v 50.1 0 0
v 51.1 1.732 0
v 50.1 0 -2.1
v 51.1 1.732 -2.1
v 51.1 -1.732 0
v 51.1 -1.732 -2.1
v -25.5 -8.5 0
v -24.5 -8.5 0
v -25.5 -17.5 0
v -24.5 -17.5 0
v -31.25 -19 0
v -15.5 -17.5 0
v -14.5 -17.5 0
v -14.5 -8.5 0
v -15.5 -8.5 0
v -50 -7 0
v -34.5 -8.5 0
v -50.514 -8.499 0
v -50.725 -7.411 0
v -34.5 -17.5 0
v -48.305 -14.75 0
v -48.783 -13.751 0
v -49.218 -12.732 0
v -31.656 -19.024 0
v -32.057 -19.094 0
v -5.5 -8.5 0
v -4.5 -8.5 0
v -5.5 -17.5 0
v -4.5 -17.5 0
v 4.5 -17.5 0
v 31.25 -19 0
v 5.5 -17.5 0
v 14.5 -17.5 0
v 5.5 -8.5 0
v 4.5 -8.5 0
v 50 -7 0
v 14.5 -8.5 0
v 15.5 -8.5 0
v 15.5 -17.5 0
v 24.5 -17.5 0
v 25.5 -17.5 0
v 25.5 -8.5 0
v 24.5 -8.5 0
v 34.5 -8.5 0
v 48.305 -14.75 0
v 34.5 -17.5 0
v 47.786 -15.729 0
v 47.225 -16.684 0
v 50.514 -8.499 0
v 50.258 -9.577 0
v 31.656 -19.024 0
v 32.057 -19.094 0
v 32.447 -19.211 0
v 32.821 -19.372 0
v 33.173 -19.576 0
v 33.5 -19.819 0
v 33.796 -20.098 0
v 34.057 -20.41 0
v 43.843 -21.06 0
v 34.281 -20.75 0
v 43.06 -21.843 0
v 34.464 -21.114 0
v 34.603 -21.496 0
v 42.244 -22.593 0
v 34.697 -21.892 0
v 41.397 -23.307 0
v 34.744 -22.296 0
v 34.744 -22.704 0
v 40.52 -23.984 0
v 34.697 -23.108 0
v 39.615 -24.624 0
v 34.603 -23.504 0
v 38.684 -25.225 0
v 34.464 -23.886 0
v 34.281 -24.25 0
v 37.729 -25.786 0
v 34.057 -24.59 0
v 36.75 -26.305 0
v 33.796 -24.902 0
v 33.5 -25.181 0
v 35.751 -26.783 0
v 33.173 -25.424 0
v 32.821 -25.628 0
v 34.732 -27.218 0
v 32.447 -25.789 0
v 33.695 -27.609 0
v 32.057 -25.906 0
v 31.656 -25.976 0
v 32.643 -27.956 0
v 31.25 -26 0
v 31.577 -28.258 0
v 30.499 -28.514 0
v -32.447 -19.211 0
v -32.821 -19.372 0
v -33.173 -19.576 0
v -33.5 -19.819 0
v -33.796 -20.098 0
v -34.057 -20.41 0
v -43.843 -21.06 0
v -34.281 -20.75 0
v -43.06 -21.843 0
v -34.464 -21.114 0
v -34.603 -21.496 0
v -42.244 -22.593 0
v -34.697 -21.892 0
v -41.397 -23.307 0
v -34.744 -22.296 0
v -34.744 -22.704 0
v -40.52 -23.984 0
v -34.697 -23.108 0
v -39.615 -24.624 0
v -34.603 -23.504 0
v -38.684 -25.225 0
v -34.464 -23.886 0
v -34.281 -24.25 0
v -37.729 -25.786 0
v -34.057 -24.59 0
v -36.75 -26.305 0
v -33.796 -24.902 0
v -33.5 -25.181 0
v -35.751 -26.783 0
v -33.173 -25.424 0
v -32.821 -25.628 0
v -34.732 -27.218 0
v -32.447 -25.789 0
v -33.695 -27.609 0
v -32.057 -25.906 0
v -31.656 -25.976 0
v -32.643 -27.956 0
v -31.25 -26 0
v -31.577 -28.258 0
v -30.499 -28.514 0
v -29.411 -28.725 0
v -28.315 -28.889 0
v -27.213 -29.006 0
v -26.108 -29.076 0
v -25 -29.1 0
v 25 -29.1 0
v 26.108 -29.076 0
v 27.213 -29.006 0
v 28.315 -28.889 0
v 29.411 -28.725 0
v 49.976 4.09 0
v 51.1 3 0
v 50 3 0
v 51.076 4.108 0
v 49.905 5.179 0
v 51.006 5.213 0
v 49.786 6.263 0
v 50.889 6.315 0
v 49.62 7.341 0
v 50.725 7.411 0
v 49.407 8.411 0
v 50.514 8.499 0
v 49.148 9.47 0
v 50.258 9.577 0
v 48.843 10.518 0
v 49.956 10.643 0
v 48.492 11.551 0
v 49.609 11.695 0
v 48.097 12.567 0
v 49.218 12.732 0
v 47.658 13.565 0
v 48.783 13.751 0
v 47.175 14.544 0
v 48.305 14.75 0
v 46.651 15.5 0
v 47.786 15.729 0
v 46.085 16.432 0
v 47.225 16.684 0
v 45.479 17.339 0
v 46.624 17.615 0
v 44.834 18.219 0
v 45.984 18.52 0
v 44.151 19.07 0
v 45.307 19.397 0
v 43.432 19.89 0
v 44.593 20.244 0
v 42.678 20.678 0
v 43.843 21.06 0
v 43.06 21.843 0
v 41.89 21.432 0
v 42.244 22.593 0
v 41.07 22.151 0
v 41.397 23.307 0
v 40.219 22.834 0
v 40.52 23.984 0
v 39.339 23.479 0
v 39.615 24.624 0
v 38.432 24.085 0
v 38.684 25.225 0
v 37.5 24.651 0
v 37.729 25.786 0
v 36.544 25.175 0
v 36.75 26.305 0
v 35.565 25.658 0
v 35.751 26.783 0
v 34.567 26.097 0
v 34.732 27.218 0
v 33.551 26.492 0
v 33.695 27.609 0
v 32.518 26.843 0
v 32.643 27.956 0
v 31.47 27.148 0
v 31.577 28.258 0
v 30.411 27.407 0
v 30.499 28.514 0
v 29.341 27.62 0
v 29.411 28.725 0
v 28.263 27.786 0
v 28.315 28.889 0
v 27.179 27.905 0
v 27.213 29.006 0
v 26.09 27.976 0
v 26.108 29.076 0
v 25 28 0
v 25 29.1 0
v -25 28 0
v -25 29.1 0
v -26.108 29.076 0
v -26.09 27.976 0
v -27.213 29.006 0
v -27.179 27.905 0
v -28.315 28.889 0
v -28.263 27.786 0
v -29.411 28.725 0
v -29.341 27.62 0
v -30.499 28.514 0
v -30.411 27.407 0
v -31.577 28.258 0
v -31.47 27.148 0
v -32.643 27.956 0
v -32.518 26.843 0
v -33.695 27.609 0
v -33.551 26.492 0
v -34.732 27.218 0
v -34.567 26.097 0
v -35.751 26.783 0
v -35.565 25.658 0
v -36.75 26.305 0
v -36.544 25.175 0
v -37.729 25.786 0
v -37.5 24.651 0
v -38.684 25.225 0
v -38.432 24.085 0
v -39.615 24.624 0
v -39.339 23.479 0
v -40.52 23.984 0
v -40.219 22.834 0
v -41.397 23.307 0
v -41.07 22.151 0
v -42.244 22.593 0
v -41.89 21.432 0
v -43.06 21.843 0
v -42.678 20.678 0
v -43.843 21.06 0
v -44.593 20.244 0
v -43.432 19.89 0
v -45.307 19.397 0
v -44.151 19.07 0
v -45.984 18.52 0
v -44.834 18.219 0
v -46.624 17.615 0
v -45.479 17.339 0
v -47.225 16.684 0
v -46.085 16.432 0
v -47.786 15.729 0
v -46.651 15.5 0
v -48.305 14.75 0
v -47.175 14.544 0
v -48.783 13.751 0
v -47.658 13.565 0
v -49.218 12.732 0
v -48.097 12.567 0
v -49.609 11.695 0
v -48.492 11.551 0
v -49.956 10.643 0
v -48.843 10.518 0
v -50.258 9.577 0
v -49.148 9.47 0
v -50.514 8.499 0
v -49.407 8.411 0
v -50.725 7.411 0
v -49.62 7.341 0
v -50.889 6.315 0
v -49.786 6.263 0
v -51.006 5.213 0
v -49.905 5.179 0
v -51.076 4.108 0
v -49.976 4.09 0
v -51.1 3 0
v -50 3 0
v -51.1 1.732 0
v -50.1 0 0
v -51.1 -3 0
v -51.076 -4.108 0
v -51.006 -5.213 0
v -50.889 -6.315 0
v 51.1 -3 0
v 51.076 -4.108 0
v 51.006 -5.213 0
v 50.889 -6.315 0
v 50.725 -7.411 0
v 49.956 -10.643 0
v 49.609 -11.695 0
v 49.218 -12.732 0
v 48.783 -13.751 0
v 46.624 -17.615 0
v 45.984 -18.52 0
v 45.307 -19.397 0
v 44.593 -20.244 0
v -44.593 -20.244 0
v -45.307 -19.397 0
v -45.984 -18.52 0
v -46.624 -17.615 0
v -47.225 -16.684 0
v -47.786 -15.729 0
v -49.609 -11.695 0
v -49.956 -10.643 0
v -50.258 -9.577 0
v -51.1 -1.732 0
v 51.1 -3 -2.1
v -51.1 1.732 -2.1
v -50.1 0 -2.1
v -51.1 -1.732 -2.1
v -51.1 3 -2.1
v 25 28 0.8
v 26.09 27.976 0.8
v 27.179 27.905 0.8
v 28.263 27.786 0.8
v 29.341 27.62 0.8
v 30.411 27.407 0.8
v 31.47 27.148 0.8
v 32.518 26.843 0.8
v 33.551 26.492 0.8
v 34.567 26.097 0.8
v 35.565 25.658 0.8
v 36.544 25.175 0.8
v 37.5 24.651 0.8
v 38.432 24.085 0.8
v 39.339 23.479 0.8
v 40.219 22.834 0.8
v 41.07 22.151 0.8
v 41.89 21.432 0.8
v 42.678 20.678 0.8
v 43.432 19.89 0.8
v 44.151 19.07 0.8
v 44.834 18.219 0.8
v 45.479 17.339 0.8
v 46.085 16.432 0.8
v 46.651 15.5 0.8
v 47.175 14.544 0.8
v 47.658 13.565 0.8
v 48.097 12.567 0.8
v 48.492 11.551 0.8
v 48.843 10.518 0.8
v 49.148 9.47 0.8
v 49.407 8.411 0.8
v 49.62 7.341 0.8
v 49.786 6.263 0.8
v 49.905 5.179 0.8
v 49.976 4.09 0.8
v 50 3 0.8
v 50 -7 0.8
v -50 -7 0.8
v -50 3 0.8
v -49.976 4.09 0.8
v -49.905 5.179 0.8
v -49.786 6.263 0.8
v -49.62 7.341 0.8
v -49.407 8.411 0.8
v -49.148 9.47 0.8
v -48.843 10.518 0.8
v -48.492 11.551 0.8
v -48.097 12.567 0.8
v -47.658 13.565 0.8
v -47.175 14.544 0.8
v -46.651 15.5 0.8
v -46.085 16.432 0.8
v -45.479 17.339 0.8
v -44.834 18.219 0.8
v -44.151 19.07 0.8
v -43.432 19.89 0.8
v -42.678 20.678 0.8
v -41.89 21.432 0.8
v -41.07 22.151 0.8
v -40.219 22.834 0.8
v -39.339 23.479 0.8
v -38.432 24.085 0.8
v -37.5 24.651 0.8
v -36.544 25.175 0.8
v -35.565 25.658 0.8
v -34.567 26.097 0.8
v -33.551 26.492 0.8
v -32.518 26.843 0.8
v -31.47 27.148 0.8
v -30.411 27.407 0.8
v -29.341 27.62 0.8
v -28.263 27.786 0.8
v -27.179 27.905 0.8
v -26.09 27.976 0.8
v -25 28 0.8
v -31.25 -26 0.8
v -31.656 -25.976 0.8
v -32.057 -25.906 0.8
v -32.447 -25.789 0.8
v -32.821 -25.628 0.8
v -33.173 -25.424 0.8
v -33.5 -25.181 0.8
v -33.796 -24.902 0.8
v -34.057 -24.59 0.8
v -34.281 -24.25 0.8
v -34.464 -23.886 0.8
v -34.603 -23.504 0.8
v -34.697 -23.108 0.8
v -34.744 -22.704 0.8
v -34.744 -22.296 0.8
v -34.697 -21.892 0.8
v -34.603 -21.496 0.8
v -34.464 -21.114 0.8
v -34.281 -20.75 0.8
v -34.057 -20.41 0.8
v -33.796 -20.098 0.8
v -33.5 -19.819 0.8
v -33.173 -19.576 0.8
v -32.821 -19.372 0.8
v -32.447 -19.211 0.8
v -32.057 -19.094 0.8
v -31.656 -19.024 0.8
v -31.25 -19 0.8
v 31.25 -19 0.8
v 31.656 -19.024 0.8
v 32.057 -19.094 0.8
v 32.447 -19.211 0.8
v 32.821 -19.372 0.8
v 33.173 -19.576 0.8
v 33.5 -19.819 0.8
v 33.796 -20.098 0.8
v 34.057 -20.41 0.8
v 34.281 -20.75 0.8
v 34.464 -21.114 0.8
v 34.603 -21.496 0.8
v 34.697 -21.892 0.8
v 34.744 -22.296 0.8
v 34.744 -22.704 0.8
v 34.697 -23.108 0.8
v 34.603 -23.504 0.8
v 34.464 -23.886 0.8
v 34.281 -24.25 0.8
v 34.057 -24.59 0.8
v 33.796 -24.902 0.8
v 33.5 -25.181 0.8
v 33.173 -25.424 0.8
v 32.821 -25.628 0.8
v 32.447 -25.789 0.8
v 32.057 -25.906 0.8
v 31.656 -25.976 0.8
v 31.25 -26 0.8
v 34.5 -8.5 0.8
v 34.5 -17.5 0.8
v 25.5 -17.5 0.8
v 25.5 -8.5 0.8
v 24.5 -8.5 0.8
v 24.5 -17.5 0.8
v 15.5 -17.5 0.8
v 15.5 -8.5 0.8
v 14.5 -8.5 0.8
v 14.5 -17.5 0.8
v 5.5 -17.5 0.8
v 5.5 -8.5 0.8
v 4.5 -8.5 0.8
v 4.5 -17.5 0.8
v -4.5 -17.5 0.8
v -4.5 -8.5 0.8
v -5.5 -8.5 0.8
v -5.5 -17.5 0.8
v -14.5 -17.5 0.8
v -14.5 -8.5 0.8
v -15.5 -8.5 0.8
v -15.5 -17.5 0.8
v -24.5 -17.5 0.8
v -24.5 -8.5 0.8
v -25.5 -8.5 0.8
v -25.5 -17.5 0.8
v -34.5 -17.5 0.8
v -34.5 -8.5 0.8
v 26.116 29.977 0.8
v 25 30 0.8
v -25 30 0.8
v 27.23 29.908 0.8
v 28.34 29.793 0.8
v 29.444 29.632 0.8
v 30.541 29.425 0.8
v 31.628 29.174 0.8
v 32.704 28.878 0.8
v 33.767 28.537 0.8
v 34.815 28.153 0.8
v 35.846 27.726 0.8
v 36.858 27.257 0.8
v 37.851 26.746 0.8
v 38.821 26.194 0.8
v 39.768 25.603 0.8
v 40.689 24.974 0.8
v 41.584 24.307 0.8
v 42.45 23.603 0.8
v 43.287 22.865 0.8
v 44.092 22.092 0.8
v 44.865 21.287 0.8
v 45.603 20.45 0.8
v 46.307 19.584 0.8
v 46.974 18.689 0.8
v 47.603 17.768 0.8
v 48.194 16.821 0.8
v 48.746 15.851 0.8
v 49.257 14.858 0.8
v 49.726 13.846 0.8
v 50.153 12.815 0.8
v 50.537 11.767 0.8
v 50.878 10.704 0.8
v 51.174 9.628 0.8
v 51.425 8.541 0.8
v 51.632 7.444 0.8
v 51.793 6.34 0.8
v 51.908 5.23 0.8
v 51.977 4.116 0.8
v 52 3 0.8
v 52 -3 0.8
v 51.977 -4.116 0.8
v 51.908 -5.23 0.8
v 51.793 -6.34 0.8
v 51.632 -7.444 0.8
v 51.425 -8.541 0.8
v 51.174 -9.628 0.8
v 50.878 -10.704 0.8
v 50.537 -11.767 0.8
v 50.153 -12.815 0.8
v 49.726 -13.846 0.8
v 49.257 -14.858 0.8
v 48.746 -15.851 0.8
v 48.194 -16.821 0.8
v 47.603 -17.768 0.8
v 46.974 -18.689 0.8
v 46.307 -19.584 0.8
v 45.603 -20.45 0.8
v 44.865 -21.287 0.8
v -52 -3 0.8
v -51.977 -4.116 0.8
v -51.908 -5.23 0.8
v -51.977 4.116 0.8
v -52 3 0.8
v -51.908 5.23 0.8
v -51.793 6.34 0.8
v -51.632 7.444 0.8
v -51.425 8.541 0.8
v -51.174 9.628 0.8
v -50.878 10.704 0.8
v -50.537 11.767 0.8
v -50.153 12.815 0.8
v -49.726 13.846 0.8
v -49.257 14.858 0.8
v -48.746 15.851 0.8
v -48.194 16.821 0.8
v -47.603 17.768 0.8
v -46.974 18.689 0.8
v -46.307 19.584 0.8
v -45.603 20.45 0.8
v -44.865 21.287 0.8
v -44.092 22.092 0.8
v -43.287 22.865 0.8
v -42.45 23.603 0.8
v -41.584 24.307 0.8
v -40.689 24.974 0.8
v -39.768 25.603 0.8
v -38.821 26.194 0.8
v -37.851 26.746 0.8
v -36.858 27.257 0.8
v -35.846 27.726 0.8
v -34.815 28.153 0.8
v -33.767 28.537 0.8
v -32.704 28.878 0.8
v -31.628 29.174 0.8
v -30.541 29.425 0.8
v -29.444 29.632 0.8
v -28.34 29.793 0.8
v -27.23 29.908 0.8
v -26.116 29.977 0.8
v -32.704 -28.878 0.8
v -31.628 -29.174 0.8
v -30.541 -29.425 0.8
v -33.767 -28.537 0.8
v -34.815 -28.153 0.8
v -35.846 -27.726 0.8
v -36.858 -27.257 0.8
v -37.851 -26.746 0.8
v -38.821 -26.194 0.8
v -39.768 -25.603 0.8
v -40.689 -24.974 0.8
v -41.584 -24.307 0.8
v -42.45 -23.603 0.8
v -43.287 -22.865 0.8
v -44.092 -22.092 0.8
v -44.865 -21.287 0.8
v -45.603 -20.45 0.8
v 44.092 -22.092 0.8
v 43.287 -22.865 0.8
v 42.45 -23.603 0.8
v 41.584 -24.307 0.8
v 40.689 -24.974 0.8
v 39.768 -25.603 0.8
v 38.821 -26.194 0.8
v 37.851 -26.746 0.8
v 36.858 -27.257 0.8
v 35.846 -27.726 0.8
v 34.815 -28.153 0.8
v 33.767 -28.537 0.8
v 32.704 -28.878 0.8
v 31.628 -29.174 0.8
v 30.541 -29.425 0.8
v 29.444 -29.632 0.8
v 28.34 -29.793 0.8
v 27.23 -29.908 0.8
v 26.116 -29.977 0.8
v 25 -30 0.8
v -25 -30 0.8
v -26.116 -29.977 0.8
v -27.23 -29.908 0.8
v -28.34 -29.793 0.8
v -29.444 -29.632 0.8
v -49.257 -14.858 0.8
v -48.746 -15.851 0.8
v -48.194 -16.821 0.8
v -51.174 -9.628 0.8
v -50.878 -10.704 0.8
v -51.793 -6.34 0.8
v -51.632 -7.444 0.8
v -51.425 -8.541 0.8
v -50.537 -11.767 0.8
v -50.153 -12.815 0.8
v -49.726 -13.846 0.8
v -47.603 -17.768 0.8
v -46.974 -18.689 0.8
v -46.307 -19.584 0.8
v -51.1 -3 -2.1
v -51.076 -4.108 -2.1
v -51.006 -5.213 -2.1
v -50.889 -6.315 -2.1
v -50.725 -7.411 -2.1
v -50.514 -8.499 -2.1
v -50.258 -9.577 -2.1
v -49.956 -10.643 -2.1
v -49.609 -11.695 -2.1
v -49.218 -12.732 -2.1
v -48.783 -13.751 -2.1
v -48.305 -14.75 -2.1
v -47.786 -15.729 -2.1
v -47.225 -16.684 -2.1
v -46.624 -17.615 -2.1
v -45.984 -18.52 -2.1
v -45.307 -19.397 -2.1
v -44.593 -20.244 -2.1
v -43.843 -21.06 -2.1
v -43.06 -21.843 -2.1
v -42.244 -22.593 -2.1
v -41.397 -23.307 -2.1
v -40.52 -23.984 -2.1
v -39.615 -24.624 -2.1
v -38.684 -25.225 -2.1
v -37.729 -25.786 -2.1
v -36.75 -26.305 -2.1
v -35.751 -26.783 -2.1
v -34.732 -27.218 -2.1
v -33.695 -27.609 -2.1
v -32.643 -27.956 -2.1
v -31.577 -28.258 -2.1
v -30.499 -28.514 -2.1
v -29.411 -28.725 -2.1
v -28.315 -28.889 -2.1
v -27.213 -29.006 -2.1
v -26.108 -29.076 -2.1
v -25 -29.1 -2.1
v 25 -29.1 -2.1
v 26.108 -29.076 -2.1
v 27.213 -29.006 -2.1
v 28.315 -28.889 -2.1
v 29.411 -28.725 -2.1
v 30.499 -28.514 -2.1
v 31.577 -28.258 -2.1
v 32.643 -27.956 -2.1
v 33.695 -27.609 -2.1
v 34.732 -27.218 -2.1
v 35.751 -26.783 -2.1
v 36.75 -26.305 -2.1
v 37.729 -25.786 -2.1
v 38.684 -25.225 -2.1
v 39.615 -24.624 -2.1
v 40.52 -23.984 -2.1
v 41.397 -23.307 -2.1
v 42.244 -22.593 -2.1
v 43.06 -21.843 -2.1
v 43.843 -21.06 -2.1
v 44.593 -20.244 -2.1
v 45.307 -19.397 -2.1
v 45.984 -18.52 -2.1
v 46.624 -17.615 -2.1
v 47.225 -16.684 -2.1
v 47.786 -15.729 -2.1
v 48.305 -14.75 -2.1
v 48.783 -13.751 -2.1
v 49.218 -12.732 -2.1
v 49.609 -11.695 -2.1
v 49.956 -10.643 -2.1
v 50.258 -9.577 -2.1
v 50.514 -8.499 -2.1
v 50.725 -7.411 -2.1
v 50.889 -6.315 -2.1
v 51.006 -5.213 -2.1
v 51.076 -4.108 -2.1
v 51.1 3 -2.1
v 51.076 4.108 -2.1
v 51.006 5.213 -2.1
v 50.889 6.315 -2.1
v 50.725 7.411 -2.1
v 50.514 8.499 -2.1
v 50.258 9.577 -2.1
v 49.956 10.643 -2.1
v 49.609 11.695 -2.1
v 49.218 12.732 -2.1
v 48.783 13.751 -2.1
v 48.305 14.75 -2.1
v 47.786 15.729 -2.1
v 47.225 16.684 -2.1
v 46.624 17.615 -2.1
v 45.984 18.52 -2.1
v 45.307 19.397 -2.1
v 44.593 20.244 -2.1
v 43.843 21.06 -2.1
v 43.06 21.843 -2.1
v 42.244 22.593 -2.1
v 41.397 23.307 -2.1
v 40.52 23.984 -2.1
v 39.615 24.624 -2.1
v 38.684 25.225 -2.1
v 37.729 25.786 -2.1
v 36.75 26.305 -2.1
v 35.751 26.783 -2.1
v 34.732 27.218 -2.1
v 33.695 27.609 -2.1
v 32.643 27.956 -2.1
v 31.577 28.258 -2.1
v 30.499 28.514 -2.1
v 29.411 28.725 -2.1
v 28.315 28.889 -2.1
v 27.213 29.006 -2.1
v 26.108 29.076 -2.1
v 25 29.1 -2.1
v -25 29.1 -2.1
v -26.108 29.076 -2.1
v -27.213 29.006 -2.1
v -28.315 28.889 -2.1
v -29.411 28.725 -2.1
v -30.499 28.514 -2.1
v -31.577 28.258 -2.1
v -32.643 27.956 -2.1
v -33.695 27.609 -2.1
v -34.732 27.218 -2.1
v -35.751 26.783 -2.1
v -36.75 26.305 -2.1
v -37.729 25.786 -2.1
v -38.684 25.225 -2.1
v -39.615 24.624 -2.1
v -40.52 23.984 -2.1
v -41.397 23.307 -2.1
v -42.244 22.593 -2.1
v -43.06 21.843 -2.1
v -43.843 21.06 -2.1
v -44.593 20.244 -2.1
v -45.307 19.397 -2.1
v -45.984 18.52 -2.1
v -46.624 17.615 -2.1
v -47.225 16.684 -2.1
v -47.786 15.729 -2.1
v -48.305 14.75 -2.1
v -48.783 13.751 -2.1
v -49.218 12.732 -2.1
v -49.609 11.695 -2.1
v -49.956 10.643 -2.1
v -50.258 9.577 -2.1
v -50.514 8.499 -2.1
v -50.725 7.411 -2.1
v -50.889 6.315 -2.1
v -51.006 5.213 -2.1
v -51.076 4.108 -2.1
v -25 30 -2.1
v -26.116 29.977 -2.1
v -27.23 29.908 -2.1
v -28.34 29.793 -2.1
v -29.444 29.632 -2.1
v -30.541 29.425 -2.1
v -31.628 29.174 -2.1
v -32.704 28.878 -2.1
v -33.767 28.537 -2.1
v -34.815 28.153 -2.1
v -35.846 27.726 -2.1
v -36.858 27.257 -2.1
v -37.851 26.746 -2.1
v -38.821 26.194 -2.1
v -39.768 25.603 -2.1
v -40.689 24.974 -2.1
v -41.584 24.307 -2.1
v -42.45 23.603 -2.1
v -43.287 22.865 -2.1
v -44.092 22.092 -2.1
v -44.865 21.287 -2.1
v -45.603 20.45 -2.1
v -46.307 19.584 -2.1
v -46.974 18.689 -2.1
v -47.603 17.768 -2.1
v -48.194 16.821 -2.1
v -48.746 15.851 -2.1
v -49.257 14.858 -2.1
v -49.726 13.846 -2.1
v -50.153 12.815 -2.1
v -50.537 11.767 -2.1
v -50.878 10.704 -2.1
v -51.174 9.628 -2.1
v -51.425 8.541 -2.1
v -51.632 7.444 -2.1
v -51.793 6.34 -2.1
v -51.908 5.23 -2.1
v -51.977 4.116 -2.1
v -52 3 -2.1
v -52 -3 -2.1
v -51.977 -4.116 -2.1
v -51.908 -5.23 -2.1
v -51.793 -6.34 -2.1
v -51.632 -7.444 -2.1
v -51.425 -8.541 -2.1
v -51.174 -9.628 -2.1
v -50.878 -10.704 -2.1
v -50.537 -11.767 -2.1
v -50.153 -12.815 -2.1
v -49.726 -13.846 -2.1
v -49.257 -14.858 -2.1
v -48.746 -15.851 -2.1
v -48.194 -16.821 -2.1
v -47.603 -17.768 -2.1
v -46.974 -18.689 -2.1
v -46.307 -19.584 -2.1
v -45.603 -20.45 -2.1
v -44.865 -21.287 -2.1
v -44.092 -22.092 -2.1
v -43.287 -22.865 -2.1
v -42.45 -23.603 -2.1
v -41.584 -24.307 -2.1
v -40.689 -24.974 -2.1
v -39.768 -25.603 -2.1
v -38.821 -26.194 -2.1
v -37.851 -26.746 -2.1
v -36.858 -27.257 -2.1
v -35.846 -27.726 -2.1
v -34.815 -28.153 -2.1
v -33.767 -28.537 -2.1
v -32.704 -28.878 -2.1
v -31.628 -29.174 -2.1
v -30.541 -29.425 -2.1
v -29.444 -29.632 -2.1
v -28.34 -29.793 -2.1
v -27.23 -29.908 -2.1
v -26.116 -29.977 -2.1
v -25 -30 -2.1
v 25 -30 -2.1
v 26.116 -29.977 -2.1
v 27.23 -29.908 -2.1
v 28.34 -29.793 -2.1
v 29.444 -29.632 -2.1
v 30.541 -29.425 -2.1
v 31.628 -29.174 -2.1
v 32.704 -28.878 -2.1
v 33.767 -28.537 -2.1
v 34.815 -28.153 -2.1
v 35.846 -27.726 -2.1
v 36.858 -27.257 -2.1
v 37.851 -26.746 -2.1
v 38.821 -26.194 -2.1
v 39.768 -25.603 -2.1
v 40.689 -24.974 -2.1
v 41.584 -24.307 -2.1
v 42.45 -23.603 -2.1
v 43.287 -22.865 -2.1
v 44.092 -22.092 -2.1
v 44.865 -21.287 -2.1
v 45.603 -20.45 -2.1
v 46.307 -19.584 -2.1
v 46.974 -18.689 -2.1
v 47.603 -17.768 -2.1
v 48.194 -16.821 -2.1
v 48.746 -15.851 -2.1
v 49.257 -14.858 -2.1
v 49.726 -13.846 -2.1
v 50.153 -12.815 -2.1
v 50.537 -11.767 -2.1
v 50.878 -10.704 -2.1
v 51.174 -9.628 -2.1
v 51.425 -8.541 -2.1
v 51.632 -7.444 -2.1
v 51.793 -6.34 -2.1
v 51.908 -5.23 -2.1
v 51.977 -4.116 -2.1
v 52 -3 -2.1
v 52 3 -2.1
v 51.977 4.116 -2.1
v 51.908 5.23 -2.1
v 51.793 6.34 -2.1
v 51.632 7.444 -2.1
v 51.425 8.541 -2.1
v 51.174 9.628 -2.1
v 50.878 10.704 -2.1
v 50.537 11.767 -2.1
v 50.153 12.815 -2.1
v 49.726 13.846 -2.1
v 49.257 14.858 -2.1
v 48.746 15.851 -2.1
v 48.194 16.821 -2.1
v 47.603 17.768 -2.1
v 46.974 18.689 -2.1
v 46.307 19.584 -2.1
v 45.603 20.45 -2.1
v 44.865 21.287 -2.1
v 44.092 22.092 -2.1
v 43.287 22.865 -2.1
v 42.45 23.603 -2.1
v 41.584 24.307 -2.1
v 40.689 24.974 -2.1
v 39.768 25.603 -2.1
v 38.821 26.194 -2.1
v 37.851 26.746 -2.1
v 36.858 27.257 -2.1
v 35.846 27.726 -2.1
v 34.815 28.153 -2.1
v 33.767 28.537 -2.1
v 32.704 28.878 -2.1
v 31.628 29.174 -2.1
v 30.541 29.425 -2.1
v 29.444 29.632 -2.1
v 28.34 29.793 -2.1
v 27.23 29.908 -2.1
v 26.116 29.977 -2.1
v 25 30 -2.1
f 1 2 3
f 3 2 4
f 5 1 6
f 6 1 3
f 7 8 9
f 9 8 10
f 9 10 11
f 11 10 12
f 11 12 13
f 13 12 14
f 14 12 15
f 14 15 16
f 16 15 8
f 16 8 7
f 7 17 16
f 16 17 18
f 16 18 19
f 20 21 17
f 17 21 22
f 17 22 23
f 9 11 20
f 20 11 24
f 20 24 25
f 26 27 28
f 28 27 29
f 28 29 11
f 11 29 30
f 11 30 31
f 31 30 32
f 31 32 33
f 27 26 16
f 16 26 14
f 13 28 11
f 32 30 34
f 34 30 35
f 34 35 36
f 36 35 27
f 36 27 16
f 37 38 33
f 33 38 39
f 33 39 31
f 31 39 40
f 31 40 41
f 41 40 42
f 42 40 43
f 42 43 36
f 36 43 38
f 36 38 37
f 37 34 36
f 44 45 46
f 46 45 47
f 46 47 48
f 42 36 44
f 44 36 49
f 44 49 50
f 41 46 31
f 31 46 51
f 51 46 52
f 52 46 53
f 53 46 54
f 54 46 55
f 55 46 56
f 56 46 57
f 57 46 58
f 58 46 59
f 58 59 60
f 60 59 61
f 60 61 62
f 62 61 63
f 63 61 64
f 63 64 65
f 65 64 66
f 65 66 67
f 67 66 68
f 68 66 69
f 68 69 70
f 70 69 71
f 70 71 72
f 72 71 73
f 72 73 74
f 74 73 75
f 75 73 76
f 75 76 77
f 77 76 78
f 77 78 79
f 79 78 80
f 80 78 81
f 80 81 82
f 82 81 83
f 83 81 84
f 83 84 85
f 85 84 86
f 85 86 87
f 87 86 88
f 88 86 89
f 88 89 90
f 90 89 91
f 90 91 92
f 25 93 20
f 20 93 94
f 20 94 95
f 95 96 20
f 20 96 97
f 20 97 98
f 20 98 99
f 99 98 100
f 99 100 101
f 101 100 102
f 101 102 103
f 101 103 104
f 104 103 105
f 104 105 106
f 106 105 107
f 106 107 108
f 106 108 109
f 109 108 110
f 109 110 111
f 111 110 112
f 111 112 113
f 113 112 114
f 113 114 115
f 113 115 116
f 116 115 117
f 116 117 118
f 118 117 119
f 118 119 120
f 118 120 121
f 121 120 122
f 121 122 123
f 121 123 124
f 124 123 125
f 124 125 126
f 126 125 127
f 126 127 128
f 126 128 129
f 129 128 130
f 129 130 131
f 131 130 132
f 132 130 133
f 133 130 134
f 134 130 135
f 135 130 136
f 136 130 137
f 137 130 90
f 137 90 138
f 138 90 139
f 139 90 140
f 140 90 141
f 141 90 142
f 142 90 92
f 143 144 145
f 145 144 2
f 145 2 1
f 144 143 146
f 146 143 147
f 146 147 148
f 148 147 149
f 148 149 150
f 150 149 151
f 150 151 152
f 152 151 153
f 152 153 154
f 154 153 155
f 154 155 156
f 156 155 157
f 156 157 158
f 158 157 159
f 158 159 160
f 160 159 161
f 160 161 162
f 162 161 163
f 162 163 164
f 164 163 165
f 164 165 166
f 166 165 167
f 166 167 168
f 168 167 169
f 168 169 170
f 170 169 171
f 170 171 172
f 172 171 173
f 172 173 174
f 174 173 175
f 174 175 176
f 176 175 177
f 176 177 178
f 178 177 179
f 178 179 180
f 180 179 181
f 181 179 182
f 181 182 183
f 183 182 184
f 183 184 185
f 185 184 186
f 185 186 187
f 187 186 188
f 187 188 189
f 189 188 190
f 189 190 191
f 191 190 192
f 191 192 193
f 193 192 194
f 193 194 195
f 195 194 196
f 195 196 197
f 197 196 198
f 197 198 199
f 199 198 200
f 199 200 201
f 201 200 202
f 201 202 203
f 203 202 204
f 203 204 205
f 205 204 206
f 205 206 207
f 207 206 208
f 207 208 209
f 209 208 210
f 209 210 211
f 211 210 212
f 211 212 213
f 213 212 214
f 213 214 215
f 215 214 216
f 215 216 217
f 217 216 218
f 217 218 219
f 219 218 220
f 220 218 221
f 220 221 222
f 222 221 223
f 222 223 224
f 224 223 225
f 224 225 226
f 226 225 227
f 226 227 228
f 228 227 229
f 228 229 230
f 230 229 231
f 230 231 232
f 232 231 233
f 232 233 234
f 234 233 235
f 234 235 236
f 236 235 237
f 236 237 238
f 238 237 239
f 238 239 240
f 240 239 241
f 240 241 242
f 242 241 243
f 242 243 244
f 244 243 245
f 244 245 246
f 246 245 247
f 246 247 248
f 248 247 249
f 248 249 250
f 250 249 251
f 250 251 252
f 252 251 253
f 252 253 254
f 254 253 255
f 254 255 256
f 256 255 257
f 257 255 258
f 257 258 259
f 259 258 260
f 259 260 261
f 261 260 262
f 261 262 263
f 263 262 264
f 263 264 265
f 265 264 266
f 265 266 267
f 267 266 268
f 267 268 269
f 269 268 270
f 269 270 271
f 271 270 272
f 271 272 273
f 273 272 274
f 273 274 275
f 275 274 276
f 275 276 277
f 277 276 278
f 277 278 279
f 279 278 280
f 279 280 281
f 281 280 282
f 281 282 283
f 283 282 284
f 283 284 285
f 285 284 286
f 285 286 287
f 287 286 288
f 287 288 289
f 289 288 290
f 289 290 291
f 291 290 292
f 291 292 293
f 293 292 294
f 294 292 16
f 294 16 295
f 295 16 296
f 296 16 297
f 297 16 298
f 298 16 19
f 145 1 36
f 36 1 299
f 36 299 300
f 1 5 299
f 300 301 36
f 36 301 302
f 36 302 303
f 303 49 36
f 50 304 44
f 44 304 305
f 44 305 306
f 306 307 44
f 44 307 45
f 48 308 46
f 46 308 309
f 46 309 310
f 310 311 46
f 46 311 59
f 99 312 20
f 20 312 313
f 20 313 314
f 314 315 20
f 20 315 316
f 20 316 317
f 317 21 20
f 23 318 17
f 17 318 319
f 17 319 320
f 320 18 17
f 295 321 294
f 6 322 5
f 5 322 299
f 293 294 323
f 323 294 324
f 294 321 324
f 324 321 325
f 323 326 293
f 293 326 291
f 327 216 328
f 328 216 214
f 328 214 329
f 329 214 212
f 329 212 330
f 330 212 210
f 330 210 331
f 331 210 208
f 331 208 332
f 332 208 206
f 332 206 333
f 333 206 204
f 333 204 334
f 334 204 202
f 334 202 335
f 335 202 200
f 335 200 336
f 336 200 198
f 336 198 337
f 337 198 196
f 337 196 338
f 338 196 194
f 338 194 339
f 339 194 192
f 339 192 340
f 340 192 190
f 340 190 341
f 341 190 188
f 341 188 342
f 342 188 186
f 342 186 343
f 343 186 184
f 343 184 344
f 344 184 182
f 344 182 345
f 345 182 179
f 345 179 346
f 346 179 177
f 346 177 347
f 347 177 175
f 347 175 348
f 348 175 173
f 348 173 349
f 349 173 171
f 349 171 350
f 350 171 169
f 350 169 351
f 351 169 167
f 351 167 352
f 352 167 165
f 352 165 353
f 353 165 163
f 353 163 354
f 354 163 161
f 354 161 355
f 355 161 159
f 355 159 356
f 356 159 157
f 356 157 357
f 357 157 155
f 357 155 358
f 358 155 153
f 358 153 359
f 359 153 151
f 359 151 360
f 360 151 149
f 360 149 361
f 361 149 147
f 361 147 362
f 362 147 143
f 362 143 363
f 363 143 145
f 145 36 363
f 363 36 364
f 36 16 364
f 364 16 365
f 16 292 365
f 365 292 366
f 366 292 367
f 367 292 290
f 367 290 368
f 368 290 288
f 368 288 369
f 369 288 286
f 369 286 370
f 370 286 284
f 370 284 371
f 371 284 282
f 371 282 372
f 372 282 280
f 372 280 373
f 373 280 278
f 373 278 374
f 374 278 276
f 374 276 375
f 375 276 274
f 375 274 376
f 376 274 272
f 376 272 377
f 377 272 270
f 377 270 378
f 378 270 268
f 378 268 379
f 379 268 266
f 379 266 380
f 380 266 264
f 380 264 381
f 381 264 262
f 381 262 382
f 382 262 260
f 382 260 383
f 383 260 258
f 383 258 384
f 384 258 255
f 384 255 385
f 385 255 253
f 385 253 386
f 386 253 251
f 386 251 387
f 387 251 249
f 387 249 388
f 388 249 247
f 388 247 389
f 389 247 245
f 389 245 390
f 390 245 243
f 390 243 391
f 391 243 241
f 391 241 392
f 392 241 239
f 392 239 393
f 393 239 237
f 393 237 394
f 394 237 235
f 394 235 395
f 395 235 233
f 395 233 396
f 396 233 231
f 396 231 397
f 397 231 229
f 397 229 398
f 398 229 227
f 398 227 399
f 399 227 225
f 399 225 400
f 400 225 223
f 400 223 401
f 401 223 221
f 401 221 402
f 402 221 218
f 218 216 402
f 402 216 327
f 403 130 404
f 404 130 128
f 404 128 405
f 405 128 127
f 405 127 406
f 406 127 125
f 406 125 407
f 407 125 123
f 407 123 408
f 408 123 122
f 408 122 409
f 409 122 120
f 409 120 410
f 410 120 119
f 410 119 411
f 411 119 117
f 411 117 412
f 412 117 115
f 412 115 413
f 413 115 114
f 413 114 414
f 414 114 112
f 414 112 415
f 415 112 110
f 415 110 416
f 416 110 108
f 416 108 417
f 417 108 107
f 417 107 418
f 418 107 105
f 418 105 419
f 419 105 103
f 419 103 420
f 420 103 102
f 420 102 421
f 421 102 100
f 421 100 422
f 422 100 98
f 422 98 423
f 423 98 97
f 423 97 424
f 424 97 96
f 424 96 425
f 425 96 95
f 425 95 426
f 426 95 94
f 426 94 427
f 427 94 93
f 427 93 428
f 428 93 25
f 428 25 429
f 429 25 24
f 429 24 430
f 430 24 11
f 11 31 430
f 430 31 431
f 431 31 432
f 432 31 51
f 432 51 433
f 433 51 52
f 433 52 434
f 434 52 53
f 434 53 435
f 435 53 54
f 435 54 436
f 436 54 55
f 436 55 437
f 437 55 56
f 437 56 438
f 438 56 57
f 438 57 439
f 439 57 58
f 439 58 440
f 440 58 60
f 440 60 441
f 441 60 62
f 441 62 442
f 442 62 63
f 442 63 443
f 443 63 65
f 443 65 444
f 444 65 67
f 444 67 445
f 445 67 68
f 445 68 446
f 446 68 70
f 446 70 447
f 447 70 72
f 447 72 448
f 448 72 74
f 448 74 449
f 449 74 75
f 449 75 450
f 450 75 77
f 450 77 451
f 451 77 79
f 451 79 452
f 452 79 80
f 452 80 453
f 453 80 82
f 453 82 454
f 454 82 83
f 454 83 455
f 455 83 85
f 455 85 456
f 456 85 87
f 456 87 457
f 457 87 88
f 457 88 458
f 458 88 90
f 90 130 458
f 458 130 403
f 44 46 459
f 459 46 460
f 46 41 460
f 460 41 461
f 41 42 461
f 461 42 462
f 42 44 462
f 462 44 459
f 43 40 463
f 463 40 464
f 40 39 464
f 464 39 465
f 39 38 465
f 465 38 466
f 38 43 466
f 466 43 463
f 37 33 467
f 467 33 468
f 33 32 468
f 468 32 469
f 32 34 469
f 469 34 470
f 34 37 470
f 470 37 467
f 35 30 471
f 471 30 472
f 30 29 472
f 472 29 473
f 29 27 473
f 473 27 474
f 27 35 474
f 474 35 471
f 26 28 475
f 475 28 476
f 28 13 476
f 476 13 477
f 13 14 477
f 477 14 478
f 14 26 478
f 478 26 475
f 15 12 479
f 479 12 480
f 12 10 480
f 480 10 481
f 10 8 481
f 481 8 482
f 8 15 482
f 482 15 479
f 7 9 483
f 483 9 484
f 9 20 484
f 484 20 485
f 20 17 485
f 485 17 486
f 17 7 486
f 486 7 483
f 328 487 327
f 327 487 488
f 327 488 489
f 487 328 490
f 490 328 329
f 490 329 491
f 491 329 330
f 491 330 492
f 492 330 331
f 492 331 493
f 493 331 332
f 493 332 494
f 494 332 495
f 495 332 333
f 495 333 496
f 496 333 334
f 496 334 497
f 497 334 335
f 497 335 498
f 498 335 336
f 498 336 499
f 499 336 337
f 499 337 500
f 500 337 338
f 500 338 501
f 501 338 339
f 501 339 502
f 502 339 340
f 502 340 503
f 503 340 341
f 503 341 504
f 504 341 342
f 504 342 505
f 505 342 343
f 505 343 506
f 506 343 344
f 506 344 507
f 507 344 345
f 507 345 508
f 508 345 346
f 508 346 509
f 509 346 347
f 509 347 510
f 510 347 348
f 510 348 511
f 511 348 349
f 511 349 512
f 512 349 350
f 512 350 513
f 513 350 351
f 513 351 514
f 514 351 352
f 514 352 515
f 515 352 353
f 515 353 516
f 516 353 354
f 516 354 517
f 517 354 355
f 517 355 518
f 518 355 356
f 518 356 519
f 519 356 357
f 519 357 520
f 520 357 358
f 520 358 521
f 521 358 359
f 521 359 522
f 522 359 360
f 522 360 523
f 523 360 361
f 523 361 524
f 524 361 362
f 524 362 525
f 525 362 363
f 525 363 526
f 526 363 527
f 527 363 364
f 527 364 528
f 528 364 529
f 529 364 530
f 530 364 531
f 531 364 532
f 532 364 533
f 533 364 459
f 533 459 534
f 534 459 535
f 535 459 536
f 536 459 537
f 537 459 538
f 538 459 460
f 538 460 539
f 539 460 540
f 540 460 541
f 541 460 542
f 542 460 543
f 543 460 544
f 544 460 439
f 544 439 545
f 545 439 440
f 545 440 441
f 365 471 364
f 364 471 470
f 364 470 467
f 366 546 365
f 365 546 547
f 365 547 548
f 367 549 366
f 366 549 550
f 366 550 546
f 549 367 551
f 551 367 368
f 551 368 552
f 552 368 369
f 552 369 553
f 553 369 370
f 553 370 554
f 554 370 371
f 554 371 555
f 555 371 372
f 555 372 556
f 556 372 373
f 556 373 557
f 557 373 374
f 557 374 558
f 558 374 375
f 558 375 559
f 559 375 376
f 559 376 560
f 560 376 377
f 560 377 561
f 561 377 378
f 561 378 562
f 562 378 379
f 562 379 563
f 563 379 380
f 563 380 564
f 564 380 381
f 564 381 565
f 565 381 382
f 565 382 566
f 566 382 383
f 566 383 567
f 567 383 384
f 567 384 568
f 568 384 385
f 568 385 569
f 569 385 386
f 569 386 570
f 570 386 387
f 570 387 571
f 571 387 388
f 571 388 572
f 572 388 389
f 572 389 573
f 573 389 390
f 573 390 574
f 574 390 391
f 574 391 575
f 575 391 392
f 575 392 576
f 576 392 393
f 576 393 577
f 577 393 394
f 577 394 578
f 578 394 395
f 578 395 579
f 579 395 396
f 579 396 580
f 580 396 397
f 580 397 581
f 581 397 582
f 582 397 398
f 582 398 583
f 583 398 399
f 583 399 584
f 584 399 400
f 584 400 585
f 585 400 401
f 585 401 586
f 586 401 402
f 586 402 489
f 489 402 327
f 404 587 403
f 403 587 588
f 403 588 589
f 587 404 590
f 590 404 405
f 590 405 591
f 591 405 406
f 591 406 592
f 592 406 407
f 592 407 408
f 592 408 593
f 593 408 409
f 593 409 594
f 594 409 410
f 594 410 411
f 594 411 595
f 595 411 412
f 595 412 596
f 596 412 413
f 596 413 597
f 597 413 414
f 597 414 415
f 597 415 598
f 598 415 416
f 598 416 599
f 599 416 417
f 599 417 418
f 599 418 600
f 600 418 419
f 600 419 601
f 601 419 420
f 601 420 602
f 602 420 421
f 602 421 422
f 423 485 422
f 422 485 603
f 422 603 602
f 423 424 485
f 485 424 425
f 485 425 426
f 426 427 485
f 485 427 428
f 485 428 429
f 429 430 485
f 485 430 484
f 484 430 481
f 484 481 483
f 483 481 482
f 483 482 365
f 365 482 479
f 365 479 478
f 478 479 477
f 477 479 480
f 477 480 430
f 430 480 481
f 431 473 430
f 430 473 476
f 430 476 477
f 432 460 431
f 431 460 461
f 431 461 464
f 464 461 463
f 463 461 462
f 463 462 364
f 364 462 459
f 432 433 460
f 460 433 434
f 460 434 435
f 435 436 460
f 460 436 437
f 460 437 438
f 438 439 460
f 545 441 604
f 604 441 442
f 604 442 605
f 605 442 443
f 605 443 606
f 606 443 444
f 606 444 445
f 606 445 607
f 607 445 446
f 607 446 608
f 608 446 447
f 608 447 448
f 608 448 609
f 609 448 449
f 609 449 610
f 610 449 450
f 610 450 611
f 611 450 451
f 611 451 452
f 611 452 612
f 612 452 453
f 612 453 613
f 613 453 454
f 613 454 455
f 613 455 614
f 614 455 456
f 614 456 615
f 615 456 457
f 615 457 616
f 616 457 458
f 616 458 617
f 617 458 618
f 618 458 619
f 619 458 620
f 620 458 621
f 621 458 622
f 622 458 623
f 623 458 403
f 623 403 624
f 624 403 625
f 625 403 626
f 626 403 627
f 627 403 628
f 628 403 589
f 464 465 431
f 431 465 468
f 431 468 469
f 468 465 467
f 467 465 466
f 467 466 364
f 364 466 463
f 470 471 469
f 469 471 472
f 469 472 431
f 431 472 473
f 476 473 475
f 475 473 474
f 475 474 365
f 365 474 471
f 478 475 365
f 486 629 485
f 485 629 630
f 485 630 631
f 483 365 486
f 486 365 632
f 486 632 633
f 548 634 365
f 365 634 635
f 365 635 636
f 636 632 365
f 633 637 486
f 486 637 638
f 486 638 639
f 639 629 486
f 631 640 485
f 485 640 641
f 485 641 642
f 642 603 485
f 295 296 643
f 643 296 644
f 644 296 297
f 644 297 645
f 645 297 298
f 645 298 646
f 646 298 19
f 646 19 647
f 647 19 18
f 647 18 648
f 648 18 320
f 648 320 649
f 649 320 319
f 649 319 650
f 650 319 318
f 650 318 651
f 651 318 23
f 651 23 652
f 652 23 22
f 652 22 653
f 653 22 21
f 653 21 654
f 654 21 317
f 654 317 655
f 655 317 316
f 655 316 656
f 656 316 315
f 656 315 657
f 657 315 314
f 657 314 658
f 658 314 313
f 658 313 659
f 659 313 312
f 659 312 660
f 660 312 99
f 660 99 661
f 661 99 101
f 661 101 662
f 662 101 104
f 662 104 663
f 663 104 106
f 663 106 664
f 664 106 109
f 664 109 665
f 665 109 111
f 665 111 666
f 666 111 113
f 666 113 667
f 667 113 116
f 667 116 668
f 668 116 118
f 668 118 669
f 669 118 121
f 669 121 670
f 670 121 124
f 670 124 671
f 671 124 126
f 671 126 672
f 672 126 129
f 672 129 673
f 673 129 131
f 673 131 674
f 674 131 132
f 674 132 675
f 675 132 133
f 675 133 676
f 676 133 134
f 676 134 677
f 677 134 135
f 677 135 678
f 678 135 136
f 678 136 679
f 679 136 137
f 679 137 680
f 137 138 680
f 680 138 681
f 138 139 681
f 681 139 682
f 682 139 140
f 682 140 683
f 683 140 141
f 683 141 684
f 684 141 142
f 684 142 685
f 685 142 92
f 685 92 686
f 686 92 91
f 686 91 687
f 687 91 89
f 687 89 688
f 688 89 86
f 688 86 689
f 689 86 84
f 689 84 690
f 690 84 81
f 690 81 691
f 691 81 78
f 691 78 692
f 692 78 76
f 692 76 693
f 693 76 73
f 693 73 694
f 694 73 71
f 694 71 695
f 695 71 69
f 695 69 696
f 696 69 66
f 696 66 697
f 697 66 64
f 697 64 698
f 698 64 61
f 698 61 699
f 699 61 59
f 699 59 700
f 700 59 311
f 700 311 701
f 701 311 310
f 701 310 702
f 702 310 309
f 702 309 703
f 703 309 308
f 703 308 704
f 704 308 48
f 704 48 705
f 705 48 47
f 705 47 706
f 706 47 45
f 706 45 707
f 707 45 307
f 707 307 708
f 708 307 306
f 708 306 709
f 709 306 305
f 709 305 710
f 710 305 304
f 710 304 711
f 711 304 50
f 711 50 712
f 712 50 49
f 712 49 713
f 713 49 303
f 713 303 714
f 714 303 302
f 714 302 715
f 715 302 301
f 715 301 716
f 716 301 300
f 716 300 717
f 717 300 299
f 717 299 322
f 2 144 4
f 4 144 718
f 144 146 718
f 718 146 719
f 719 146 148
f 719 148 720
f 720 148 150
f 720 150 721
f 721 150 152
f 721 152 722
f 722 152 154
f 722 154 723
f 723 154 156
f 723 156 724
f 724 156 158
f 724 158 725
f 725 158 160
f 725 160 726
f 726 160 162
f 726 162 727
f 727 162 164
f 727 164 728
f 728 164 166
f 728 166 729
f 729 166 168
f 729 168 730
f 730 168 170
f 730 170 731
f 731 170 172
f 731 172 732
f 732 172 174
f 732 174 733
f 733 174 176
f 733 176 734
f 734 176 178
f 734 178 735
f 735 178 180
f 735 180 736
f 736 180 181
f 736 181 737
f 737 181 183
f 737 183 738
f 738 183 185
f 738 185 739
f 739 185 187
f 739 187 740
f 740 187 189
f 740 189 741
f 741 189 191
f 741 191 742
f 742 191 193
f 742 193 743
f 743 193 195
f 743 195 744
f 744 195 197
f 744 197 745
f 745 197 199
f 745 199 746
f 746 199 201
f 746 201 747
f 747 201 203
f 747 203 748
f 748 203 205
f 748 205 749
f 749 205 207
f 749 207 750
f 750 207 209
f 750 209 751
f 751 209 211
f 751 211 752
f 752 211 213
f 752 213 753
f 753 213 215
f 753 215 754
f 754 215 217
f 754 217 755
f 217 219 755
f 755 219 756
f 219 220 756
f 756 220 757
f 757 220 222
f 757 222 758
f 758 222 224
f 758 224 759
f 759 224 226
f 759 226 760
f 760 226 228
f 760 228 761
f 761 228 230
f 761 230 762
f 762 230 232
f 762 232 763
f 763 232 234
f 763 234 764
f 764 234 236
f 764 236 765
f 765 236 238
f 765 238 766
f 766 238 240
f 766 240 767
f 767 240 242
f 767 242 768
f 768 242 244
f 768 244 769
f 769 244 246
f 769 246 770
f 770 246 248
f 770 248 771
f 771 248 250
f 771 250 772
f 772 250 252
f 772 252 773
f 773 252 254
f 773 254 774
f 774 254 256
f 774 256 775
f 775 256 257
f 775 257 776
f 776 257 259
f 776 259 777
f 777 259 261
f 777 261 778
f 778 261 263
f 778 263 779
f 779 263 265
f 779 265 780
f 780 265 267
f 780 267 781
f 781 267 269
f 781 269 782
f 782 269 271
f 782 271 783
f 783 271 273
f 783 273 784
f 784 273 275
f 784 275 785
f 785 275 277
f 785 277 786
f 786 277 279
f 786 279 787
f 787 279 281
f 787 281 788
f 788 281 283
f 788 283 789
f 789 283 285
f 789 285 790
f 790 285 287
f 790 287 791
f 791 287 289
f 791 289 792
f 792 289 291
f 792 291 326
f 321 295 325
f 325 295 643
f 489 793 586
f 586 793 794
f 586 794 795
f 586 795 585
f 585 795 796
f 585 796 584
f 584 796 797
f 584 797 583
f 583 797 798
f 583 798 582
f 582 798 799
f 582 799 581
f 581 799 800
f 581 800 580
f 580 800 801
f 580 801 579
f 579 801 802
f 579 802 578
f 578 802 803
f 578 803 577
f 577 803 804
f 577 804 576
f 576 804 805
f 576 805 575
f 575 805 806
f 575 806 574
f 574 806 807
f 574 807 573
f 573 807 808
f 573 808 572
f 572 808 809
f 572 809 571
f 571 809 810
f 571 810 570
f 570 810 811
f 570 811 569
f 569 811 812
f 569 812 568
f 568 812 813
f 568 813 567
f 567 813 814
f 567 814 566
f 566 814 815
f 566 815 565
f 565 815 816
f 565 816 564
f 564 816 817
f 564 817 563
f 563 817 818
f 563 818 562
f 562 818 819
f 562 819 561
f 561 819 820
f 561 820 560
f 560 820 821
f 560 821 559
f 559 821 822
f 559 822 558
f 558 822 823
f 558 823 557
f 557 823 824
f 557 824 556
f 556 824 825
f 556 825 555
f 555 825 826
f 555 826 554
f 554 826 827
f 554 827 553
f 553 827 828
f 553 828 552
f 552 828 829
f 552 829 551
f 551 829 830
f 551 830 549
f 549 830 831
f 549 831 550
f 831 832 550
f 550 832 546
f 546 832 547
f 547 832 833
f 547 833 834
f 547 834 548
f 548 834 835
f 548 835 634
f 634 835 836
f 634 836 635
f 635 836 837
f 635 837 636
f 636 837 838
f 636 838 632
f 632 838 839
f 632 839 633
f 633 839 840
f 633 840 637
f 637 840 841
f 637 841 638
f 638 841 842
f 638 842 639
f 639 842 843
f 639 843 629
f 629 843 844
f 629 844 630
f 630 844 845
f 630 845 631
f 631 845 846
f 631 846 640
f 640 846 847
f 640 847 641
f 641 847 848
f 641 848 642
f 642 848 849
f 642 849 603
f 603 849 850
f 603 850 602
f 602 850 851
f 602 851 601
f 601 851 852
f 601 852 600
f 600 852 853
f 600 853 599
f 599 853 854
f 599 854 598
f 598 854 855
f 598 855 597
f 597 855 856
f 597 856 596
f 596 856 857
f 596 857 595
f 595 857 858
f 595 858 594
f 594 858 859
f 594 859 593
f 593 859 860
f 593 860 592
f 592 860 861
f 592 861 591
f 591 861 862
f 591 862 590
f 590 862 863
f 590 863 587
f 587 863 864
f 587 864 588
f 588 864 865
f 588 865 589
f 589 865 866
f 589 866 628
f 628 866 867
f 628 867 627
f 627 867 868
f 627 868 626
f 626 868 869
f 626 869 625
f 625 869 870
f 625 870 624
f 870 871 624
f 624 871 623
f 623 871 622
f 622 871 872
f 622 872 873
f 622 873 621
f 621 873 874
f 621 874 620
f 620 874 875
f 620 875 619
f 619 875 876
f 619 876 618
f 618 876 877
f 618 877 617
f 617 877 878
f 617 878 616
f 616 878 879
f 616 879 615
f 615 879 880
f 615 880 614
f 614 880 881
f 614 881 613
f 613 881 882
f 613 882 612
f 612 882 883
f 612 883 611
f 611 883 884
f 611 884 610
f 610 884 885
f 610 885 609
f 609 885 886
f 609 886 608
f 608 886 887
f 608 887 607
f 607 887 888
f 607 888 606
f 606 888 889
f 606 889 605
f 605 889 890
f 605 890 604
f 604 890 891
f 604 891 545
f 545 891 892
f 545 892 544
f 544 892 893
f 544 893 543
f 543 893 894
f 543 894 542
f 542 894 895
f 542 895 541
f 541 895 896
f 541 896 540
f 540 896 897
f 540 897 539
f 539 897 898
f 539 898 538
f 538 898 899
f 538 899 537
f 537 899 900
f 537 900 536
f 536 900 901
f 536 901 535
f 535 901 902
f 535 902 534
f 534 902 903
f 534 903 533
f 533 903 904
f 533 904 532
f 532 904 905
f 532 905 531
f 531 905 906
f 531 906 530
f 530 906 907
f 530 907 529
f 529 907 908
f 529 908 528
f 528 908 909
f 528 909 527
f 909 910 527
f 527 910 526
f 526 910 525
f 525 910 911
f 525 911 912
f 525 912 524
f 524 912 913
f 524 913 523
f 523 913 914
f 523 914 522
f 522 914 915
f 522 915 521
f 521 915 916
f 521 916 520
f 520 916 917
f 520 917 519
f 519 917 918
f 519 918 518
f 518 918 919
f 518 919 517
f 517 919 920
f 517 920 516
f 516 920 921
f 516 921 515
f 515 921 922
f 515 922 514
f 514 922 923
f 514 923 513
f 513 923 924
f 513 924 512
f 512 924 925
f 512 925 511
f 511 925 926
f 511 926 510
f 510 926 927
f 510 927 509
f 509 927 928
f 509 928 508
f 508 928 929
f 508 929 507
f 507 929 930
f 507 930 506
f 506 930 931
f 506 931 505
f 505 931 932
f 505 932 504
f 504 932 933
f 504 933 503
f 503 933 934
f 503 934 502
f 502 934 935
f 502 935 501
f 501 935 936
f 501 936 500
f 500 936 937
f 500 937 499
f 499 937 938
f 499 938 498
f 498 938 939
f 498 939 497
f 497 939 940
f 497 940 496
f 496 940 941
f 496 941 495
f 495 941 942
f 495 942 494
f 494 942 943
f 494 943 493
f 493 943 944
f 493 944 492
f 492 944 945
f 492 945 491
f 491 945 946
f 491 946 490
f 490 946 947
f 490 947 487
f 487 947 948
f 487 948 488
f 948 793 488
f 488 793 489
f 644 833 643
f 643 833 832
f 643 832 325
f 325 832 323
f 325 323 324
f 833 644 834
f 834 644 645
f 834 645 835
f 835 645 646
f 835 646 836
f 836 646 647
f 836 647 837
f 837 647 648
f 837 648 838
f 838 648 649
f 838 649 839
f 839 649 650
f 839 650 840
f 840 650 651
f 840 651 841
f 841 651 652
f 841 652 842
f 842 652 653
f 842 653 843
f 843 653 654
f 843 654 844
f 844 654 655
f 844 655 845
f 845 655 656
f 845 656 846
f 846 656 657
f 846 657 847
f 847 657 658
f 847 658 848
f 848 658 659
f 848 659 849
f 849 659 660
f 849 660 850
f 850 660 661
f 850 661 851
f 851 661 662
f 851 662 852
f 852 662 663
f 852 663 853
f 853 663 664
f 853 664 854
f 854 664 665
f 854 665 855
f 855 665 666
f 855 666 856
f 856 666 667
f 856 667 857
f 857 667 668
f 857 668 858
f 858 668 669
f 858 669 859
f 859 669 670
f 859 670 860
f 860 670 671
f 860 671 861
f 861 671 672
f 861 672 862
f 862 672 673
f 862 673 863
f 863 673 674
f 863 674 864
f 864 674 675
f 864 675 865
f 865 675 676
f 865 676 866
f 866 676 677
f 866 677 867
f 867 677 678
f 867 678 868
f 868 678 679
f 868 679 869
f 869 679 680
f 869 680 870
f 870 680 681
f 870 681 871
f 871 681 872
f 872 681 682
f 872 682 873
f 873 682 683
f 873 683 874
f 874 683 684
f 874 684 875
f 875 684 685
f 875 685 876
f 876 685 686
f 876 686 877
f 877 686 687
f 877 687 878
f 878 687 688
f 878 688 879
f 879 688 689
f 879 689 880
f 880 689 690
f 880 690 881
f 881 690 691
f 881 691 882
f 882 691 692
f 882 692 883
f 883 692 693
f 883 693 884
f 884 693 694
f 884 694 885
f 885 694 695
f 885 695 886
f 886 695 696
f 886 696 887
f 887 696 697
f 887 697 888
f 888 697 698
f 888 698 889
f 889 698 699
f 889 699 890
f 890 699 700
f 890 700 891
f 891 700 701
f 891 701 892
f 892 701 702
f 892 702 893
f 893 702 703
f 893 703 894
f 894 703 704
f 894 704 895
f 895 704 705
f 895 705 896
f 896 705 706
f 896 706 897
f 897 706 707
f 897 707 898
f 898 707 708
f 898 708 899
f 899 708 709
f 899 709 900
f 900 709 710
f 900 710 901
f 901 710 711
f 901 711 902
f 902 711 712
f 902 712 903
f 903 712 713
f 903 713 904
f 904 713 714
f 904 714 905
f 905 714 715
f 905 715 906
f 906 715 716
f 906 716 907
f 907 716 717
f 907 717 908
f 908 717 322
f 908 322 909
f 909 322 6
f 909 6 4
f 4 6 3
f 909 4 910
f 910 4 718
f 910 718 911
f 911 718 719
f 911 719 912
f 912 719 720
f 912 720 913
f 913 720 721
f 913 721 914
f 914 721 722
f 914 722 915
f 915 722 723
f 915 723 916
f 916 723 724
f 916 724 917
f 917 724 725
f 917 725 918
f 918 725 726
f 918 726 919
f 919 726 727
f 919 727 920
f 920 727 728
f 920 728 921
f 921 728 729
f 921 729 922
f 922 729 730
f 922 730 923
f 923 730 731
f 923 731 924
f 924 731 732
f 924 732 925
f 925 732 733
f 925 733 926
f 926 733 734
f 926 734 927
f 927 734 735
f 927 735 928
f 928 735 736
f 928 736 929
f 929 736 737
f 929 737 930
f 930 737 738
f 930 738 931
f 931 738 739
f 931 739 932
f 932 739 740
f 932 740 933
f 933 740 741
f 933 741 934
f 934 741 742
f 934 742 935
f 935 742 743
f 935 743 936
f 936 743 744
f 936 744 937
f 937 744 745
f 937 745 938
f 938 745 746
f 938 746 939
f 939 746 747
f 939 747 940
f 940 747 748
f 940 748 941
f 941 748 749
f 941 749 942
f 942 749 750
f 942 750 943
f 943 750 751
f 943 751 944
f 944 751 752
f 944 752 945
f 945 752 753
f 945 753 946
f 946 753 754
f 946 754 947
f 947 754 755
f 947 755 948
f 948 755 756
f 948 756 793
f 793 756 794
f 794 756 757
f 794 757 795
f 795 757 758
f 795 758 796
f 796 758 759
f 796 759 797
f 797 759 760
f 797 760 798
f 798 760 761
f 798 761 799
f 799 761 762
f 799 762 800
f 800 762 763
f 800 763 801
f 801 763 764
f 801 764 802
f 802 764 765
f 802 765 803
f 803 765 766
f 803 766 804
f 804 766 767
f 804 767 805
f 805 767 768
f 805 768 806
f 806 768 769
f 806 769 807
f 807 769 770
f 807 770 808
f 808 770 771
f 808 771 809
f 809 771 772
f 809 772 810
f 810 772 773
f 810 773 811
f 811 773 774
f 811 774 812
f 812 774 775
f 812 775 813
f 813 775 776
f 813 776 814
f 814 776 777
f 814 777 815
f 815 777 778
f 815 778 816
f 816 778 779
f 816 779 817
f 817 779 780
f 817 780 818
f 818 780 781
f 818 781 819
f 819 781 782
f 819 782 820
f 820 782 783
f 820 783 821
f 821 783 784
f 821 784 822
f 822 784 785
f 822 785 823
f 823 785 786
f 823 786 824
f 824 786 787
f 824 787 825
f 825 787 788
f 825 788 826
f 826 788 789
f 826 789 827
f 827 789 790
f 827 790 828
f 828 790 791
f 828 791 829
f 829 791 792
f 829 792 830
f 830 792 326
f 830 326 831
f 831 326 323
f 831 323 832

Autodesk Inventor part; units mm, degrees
ref_plane "YZ Plane" through (0, 0, 0) normal (1, 0, 0) x (0, 1, 0)
ref_plane "XZ Plane" through (0, 0, 0) normal (0, 1, 0) x (-1, 0, 0)
ref_plane "XY Plane" through (0, 0, 0) normal (0, 0, 1) x (1, 0, 0)
sketch "Sketch1" plane through (0, 0, 0) normal (0, 0, 1) x (1, 0, 0)
  line L0 (-25, -30) -> (25, -30)
  line L1 (52, -3) -> (52, 3)
  line L2 (25, 30) -> (-25, 30)
  line L3 (-52, 3) -> (-52, -3)
  line L4 (-52, -30) -> (52, 30) construction
  line L5 (52, -30) -> (-52, 30) construction
  arc A0 (-25, 30) -> (-52, 3) centre (-25, 3) ccw
  arc A1 (52, 3) -> (25, 30) centre (25, 3) ccw
  arc A2 (25, -30) -> (52, -3) centre (25, -3) ccw
  arc A3 (-52, -3) -> (-25, -30) centre (-25, -3) ccw
  line L6 (-51.1, 3) -> (-51.1, -3)
  arc A4 (-51.1, -3) -> (-25, -29.1) centre (-25, -3) ccw
  line L7 (-25, -29.1) -> (25, -29.1)
  arc A5 (25, -29.1) -> (51.1, -3) centre (25, -3) ccw
  line L8 (51.1, -3) -> (51.1, 3)
  arc A6 (51.1, 3) -> (25, 29.1) centre (25, 3) ccw
  line L9 (25, 29.1) -> (-25, 29.1)
  arc A7 (-25, 29.1) -> (-51.1, 3) centre (-25, 3) ccw
  line L10 (-25, 28) -> (25, 28)
  arc A8 (50, 3) -> (25, 28) centre (25, 3) ccw
  line L11 (50, 3) -> (50, -7)
  line L12 (-50, -7) -> (-50, 3)
  arc A9 (-25, 28) -> (-50, 3) centre (-25, 3) ccw
  line L13 (-50, -7) -> (50, -7)
  line L14 (-34.5, -8.5) -> (-25.5, -8.5)
  line L15 (-25.5, -8.5) -> (-25.5, -17.5)
  line L16 (-25.5, -17.5) -> (-34.5, -17.5)
  line L17 (-34.5, -17.5) -> (-34.5, -8.5)
  line L18 (-24.5, -8.5) -> (-15.5, -8.5)
  line L19 (-24.5, -17.5) -> (-24.5, -8.5)
  line L20 (-15.5, -8.5) -> (-15.5, -17.5)
  line L21 (-15.5, -17.5) -> (-24.5, -17.5)
  line L22 (-14.5, -8.5) -> (-5.5, -8.5)
  line L23 (-14.5, -17.5) -> (-14.5, -8.5)
  line L24 (-5.5, -8.5) -> (-5.5, -17.5)
  line L25 (-5.5, -17.5) -> (-14.5, -17.5)
  line L26 (-4.5, -8.5) -> (4.5, -8.5)
  line L27 (-4.5, -17.5) -> (-4.5, -8.5)
  line L28 (4.5, -8.5) -> (4.5, -17.5)
  line L29 (4.5, -17.5) -> (-4.5, -17.5)
  line L30 (5.5, -8.5) -> (14.5, -8.5)
  line L31 (5.5, -17.5) -> (5.5, -8.5)
  line L32 (14.5, -8.5) -> (14.5, -17.5)
  line L33 (14.5, -17.5) -> (5.5, -17.5)
  line L34 (15.5, -8.5) -> (24.5, -8.5)
  line L35 (15.5, -17.5) -> (15.5, -8.5)
  line L36 (24.5, -8.5) -> (24.5, -17.5)
  line L37 (24.5, -17.5) -> (15.5, -17.5)
  line L38 (25.5, -8.5) -> (34.5, -8.5)
  line L39 (25.5, -17.5) -> (25.5, -8.5)
  line L40 (34.5, -8.5) -> (34.5, -17.5)
  line L41 (34.5, -17.5) -> (25.5, -17.5)
  line L42 (-31.25, -22.5) -> (31.25, -22.5) construction
  line L43 (-31.25, -26) -> (31.25, -26)
  line L44 (31.25, -19) -> (-31.25, -19)
  arc A10 (-31.25, -19) -> (-31.25, -26) centre (-31.25, -22.5) ccw
  arc A11 (31.25, -26) -> (31.25, -19) centre (31.25, -22.5) ccw
  point P0 (0, 0)
  point P1 (0, -22.5)
  point P2 (0, 0)
  point P3 (0, -8.5)
  point P4 (4.5, -13)
  point P5 (0, 0)
  dimension "d0" = 104
  dimension "d1" = 60
  dimension "d2" = 27
  dimension "d3" = 58.2
  dimension "d4" = 2
  dimension "d5" = 23
  dimension "d6" = 9
  dimension "d9" = 10
  dimension "d16" = 62.5
  dimension "d17" = 7
  dimension "d24" = 13
  dimension "d25" = 22.5
extrude "Extrusion1" add sketch "Sketch1" against normal blind 2.1 contours A3 L3 A0 L2 A1 L1 A2 L0
extrude "Extrusion2" add sketch "Sketch1" along normal blind 0.8 contours A3 L3 A0 L2 A1 L1 A2 L0 | A7 L9 A6 L8 A5 L7 A4 L6
sketch "Sketch2" plane through (0, 0, -2.1) normal (0, 0, -1) x (-1, 0, 0)
  arc A0 (25, -29.1) -> (51.1, -3) centre (25, -3) ccw projected
  line L0 (25, -29.1) -> (-25, -29.1) projected
  arc A1 (-51.1, -3) -> (-25, -29.1) centre (-25, -3) ccw projected
  line L1 (-51.1, -3) -> (-51.1, 3) projected
  arc A2 (-25, 29.1) -> (-51.1, 3) centre (-25, 3) ccw projected
  line L2 (-25, 29.1) -> (25, 29.1) projected
  arc A3 (51.1, 3) -> (25, 29.1) centre (25, 3) ccw projected
  line L3 (51.1, 3) -> (51.1, -3) projected
  line L4 (25, 30) -> (-25, 30) projected
  arc A4 (-25, 30) -> (-52, 3) centre (-25, 3) ccw projected
  line L5 (-52, 3) -> (-52, -3) projected
  arc A5 (-52, -3) -> (-25, -30) centre (-25, -3) ccw projected
  line L6 (-25, -30) -> (25, -30) projected
  arc A6 (25, -30) -> (52, -3) centre (25, -3) ccw projected
  line L7 (52, -3) -> (52, 3) projected
  arc A7 (52, 3) -> (25, 30) centre (25, 3) ccw projected
  line L8 (51.1, 3) -> (51.1, -3) projected
  line L9 (51.1, -1.7321) -> (50.1, 0)
  line L10 (50.1, 0) -> (51.1, 1.7321)
  point P0 (0, 0)
  point P1 (51.1, 0)
  dimension "d26" = 1
  dimension "d27" = 120
extrude "Extrusion3" add sketch "Sketch2" against normal up to surface (2.1 mm away) contours L9 L10 L3
mirror "Mirror1" about plane through (0, 0, 0) normal (1, 0, 0) of "Extrusion3"
properties part number "Game_ColoniesV2"
